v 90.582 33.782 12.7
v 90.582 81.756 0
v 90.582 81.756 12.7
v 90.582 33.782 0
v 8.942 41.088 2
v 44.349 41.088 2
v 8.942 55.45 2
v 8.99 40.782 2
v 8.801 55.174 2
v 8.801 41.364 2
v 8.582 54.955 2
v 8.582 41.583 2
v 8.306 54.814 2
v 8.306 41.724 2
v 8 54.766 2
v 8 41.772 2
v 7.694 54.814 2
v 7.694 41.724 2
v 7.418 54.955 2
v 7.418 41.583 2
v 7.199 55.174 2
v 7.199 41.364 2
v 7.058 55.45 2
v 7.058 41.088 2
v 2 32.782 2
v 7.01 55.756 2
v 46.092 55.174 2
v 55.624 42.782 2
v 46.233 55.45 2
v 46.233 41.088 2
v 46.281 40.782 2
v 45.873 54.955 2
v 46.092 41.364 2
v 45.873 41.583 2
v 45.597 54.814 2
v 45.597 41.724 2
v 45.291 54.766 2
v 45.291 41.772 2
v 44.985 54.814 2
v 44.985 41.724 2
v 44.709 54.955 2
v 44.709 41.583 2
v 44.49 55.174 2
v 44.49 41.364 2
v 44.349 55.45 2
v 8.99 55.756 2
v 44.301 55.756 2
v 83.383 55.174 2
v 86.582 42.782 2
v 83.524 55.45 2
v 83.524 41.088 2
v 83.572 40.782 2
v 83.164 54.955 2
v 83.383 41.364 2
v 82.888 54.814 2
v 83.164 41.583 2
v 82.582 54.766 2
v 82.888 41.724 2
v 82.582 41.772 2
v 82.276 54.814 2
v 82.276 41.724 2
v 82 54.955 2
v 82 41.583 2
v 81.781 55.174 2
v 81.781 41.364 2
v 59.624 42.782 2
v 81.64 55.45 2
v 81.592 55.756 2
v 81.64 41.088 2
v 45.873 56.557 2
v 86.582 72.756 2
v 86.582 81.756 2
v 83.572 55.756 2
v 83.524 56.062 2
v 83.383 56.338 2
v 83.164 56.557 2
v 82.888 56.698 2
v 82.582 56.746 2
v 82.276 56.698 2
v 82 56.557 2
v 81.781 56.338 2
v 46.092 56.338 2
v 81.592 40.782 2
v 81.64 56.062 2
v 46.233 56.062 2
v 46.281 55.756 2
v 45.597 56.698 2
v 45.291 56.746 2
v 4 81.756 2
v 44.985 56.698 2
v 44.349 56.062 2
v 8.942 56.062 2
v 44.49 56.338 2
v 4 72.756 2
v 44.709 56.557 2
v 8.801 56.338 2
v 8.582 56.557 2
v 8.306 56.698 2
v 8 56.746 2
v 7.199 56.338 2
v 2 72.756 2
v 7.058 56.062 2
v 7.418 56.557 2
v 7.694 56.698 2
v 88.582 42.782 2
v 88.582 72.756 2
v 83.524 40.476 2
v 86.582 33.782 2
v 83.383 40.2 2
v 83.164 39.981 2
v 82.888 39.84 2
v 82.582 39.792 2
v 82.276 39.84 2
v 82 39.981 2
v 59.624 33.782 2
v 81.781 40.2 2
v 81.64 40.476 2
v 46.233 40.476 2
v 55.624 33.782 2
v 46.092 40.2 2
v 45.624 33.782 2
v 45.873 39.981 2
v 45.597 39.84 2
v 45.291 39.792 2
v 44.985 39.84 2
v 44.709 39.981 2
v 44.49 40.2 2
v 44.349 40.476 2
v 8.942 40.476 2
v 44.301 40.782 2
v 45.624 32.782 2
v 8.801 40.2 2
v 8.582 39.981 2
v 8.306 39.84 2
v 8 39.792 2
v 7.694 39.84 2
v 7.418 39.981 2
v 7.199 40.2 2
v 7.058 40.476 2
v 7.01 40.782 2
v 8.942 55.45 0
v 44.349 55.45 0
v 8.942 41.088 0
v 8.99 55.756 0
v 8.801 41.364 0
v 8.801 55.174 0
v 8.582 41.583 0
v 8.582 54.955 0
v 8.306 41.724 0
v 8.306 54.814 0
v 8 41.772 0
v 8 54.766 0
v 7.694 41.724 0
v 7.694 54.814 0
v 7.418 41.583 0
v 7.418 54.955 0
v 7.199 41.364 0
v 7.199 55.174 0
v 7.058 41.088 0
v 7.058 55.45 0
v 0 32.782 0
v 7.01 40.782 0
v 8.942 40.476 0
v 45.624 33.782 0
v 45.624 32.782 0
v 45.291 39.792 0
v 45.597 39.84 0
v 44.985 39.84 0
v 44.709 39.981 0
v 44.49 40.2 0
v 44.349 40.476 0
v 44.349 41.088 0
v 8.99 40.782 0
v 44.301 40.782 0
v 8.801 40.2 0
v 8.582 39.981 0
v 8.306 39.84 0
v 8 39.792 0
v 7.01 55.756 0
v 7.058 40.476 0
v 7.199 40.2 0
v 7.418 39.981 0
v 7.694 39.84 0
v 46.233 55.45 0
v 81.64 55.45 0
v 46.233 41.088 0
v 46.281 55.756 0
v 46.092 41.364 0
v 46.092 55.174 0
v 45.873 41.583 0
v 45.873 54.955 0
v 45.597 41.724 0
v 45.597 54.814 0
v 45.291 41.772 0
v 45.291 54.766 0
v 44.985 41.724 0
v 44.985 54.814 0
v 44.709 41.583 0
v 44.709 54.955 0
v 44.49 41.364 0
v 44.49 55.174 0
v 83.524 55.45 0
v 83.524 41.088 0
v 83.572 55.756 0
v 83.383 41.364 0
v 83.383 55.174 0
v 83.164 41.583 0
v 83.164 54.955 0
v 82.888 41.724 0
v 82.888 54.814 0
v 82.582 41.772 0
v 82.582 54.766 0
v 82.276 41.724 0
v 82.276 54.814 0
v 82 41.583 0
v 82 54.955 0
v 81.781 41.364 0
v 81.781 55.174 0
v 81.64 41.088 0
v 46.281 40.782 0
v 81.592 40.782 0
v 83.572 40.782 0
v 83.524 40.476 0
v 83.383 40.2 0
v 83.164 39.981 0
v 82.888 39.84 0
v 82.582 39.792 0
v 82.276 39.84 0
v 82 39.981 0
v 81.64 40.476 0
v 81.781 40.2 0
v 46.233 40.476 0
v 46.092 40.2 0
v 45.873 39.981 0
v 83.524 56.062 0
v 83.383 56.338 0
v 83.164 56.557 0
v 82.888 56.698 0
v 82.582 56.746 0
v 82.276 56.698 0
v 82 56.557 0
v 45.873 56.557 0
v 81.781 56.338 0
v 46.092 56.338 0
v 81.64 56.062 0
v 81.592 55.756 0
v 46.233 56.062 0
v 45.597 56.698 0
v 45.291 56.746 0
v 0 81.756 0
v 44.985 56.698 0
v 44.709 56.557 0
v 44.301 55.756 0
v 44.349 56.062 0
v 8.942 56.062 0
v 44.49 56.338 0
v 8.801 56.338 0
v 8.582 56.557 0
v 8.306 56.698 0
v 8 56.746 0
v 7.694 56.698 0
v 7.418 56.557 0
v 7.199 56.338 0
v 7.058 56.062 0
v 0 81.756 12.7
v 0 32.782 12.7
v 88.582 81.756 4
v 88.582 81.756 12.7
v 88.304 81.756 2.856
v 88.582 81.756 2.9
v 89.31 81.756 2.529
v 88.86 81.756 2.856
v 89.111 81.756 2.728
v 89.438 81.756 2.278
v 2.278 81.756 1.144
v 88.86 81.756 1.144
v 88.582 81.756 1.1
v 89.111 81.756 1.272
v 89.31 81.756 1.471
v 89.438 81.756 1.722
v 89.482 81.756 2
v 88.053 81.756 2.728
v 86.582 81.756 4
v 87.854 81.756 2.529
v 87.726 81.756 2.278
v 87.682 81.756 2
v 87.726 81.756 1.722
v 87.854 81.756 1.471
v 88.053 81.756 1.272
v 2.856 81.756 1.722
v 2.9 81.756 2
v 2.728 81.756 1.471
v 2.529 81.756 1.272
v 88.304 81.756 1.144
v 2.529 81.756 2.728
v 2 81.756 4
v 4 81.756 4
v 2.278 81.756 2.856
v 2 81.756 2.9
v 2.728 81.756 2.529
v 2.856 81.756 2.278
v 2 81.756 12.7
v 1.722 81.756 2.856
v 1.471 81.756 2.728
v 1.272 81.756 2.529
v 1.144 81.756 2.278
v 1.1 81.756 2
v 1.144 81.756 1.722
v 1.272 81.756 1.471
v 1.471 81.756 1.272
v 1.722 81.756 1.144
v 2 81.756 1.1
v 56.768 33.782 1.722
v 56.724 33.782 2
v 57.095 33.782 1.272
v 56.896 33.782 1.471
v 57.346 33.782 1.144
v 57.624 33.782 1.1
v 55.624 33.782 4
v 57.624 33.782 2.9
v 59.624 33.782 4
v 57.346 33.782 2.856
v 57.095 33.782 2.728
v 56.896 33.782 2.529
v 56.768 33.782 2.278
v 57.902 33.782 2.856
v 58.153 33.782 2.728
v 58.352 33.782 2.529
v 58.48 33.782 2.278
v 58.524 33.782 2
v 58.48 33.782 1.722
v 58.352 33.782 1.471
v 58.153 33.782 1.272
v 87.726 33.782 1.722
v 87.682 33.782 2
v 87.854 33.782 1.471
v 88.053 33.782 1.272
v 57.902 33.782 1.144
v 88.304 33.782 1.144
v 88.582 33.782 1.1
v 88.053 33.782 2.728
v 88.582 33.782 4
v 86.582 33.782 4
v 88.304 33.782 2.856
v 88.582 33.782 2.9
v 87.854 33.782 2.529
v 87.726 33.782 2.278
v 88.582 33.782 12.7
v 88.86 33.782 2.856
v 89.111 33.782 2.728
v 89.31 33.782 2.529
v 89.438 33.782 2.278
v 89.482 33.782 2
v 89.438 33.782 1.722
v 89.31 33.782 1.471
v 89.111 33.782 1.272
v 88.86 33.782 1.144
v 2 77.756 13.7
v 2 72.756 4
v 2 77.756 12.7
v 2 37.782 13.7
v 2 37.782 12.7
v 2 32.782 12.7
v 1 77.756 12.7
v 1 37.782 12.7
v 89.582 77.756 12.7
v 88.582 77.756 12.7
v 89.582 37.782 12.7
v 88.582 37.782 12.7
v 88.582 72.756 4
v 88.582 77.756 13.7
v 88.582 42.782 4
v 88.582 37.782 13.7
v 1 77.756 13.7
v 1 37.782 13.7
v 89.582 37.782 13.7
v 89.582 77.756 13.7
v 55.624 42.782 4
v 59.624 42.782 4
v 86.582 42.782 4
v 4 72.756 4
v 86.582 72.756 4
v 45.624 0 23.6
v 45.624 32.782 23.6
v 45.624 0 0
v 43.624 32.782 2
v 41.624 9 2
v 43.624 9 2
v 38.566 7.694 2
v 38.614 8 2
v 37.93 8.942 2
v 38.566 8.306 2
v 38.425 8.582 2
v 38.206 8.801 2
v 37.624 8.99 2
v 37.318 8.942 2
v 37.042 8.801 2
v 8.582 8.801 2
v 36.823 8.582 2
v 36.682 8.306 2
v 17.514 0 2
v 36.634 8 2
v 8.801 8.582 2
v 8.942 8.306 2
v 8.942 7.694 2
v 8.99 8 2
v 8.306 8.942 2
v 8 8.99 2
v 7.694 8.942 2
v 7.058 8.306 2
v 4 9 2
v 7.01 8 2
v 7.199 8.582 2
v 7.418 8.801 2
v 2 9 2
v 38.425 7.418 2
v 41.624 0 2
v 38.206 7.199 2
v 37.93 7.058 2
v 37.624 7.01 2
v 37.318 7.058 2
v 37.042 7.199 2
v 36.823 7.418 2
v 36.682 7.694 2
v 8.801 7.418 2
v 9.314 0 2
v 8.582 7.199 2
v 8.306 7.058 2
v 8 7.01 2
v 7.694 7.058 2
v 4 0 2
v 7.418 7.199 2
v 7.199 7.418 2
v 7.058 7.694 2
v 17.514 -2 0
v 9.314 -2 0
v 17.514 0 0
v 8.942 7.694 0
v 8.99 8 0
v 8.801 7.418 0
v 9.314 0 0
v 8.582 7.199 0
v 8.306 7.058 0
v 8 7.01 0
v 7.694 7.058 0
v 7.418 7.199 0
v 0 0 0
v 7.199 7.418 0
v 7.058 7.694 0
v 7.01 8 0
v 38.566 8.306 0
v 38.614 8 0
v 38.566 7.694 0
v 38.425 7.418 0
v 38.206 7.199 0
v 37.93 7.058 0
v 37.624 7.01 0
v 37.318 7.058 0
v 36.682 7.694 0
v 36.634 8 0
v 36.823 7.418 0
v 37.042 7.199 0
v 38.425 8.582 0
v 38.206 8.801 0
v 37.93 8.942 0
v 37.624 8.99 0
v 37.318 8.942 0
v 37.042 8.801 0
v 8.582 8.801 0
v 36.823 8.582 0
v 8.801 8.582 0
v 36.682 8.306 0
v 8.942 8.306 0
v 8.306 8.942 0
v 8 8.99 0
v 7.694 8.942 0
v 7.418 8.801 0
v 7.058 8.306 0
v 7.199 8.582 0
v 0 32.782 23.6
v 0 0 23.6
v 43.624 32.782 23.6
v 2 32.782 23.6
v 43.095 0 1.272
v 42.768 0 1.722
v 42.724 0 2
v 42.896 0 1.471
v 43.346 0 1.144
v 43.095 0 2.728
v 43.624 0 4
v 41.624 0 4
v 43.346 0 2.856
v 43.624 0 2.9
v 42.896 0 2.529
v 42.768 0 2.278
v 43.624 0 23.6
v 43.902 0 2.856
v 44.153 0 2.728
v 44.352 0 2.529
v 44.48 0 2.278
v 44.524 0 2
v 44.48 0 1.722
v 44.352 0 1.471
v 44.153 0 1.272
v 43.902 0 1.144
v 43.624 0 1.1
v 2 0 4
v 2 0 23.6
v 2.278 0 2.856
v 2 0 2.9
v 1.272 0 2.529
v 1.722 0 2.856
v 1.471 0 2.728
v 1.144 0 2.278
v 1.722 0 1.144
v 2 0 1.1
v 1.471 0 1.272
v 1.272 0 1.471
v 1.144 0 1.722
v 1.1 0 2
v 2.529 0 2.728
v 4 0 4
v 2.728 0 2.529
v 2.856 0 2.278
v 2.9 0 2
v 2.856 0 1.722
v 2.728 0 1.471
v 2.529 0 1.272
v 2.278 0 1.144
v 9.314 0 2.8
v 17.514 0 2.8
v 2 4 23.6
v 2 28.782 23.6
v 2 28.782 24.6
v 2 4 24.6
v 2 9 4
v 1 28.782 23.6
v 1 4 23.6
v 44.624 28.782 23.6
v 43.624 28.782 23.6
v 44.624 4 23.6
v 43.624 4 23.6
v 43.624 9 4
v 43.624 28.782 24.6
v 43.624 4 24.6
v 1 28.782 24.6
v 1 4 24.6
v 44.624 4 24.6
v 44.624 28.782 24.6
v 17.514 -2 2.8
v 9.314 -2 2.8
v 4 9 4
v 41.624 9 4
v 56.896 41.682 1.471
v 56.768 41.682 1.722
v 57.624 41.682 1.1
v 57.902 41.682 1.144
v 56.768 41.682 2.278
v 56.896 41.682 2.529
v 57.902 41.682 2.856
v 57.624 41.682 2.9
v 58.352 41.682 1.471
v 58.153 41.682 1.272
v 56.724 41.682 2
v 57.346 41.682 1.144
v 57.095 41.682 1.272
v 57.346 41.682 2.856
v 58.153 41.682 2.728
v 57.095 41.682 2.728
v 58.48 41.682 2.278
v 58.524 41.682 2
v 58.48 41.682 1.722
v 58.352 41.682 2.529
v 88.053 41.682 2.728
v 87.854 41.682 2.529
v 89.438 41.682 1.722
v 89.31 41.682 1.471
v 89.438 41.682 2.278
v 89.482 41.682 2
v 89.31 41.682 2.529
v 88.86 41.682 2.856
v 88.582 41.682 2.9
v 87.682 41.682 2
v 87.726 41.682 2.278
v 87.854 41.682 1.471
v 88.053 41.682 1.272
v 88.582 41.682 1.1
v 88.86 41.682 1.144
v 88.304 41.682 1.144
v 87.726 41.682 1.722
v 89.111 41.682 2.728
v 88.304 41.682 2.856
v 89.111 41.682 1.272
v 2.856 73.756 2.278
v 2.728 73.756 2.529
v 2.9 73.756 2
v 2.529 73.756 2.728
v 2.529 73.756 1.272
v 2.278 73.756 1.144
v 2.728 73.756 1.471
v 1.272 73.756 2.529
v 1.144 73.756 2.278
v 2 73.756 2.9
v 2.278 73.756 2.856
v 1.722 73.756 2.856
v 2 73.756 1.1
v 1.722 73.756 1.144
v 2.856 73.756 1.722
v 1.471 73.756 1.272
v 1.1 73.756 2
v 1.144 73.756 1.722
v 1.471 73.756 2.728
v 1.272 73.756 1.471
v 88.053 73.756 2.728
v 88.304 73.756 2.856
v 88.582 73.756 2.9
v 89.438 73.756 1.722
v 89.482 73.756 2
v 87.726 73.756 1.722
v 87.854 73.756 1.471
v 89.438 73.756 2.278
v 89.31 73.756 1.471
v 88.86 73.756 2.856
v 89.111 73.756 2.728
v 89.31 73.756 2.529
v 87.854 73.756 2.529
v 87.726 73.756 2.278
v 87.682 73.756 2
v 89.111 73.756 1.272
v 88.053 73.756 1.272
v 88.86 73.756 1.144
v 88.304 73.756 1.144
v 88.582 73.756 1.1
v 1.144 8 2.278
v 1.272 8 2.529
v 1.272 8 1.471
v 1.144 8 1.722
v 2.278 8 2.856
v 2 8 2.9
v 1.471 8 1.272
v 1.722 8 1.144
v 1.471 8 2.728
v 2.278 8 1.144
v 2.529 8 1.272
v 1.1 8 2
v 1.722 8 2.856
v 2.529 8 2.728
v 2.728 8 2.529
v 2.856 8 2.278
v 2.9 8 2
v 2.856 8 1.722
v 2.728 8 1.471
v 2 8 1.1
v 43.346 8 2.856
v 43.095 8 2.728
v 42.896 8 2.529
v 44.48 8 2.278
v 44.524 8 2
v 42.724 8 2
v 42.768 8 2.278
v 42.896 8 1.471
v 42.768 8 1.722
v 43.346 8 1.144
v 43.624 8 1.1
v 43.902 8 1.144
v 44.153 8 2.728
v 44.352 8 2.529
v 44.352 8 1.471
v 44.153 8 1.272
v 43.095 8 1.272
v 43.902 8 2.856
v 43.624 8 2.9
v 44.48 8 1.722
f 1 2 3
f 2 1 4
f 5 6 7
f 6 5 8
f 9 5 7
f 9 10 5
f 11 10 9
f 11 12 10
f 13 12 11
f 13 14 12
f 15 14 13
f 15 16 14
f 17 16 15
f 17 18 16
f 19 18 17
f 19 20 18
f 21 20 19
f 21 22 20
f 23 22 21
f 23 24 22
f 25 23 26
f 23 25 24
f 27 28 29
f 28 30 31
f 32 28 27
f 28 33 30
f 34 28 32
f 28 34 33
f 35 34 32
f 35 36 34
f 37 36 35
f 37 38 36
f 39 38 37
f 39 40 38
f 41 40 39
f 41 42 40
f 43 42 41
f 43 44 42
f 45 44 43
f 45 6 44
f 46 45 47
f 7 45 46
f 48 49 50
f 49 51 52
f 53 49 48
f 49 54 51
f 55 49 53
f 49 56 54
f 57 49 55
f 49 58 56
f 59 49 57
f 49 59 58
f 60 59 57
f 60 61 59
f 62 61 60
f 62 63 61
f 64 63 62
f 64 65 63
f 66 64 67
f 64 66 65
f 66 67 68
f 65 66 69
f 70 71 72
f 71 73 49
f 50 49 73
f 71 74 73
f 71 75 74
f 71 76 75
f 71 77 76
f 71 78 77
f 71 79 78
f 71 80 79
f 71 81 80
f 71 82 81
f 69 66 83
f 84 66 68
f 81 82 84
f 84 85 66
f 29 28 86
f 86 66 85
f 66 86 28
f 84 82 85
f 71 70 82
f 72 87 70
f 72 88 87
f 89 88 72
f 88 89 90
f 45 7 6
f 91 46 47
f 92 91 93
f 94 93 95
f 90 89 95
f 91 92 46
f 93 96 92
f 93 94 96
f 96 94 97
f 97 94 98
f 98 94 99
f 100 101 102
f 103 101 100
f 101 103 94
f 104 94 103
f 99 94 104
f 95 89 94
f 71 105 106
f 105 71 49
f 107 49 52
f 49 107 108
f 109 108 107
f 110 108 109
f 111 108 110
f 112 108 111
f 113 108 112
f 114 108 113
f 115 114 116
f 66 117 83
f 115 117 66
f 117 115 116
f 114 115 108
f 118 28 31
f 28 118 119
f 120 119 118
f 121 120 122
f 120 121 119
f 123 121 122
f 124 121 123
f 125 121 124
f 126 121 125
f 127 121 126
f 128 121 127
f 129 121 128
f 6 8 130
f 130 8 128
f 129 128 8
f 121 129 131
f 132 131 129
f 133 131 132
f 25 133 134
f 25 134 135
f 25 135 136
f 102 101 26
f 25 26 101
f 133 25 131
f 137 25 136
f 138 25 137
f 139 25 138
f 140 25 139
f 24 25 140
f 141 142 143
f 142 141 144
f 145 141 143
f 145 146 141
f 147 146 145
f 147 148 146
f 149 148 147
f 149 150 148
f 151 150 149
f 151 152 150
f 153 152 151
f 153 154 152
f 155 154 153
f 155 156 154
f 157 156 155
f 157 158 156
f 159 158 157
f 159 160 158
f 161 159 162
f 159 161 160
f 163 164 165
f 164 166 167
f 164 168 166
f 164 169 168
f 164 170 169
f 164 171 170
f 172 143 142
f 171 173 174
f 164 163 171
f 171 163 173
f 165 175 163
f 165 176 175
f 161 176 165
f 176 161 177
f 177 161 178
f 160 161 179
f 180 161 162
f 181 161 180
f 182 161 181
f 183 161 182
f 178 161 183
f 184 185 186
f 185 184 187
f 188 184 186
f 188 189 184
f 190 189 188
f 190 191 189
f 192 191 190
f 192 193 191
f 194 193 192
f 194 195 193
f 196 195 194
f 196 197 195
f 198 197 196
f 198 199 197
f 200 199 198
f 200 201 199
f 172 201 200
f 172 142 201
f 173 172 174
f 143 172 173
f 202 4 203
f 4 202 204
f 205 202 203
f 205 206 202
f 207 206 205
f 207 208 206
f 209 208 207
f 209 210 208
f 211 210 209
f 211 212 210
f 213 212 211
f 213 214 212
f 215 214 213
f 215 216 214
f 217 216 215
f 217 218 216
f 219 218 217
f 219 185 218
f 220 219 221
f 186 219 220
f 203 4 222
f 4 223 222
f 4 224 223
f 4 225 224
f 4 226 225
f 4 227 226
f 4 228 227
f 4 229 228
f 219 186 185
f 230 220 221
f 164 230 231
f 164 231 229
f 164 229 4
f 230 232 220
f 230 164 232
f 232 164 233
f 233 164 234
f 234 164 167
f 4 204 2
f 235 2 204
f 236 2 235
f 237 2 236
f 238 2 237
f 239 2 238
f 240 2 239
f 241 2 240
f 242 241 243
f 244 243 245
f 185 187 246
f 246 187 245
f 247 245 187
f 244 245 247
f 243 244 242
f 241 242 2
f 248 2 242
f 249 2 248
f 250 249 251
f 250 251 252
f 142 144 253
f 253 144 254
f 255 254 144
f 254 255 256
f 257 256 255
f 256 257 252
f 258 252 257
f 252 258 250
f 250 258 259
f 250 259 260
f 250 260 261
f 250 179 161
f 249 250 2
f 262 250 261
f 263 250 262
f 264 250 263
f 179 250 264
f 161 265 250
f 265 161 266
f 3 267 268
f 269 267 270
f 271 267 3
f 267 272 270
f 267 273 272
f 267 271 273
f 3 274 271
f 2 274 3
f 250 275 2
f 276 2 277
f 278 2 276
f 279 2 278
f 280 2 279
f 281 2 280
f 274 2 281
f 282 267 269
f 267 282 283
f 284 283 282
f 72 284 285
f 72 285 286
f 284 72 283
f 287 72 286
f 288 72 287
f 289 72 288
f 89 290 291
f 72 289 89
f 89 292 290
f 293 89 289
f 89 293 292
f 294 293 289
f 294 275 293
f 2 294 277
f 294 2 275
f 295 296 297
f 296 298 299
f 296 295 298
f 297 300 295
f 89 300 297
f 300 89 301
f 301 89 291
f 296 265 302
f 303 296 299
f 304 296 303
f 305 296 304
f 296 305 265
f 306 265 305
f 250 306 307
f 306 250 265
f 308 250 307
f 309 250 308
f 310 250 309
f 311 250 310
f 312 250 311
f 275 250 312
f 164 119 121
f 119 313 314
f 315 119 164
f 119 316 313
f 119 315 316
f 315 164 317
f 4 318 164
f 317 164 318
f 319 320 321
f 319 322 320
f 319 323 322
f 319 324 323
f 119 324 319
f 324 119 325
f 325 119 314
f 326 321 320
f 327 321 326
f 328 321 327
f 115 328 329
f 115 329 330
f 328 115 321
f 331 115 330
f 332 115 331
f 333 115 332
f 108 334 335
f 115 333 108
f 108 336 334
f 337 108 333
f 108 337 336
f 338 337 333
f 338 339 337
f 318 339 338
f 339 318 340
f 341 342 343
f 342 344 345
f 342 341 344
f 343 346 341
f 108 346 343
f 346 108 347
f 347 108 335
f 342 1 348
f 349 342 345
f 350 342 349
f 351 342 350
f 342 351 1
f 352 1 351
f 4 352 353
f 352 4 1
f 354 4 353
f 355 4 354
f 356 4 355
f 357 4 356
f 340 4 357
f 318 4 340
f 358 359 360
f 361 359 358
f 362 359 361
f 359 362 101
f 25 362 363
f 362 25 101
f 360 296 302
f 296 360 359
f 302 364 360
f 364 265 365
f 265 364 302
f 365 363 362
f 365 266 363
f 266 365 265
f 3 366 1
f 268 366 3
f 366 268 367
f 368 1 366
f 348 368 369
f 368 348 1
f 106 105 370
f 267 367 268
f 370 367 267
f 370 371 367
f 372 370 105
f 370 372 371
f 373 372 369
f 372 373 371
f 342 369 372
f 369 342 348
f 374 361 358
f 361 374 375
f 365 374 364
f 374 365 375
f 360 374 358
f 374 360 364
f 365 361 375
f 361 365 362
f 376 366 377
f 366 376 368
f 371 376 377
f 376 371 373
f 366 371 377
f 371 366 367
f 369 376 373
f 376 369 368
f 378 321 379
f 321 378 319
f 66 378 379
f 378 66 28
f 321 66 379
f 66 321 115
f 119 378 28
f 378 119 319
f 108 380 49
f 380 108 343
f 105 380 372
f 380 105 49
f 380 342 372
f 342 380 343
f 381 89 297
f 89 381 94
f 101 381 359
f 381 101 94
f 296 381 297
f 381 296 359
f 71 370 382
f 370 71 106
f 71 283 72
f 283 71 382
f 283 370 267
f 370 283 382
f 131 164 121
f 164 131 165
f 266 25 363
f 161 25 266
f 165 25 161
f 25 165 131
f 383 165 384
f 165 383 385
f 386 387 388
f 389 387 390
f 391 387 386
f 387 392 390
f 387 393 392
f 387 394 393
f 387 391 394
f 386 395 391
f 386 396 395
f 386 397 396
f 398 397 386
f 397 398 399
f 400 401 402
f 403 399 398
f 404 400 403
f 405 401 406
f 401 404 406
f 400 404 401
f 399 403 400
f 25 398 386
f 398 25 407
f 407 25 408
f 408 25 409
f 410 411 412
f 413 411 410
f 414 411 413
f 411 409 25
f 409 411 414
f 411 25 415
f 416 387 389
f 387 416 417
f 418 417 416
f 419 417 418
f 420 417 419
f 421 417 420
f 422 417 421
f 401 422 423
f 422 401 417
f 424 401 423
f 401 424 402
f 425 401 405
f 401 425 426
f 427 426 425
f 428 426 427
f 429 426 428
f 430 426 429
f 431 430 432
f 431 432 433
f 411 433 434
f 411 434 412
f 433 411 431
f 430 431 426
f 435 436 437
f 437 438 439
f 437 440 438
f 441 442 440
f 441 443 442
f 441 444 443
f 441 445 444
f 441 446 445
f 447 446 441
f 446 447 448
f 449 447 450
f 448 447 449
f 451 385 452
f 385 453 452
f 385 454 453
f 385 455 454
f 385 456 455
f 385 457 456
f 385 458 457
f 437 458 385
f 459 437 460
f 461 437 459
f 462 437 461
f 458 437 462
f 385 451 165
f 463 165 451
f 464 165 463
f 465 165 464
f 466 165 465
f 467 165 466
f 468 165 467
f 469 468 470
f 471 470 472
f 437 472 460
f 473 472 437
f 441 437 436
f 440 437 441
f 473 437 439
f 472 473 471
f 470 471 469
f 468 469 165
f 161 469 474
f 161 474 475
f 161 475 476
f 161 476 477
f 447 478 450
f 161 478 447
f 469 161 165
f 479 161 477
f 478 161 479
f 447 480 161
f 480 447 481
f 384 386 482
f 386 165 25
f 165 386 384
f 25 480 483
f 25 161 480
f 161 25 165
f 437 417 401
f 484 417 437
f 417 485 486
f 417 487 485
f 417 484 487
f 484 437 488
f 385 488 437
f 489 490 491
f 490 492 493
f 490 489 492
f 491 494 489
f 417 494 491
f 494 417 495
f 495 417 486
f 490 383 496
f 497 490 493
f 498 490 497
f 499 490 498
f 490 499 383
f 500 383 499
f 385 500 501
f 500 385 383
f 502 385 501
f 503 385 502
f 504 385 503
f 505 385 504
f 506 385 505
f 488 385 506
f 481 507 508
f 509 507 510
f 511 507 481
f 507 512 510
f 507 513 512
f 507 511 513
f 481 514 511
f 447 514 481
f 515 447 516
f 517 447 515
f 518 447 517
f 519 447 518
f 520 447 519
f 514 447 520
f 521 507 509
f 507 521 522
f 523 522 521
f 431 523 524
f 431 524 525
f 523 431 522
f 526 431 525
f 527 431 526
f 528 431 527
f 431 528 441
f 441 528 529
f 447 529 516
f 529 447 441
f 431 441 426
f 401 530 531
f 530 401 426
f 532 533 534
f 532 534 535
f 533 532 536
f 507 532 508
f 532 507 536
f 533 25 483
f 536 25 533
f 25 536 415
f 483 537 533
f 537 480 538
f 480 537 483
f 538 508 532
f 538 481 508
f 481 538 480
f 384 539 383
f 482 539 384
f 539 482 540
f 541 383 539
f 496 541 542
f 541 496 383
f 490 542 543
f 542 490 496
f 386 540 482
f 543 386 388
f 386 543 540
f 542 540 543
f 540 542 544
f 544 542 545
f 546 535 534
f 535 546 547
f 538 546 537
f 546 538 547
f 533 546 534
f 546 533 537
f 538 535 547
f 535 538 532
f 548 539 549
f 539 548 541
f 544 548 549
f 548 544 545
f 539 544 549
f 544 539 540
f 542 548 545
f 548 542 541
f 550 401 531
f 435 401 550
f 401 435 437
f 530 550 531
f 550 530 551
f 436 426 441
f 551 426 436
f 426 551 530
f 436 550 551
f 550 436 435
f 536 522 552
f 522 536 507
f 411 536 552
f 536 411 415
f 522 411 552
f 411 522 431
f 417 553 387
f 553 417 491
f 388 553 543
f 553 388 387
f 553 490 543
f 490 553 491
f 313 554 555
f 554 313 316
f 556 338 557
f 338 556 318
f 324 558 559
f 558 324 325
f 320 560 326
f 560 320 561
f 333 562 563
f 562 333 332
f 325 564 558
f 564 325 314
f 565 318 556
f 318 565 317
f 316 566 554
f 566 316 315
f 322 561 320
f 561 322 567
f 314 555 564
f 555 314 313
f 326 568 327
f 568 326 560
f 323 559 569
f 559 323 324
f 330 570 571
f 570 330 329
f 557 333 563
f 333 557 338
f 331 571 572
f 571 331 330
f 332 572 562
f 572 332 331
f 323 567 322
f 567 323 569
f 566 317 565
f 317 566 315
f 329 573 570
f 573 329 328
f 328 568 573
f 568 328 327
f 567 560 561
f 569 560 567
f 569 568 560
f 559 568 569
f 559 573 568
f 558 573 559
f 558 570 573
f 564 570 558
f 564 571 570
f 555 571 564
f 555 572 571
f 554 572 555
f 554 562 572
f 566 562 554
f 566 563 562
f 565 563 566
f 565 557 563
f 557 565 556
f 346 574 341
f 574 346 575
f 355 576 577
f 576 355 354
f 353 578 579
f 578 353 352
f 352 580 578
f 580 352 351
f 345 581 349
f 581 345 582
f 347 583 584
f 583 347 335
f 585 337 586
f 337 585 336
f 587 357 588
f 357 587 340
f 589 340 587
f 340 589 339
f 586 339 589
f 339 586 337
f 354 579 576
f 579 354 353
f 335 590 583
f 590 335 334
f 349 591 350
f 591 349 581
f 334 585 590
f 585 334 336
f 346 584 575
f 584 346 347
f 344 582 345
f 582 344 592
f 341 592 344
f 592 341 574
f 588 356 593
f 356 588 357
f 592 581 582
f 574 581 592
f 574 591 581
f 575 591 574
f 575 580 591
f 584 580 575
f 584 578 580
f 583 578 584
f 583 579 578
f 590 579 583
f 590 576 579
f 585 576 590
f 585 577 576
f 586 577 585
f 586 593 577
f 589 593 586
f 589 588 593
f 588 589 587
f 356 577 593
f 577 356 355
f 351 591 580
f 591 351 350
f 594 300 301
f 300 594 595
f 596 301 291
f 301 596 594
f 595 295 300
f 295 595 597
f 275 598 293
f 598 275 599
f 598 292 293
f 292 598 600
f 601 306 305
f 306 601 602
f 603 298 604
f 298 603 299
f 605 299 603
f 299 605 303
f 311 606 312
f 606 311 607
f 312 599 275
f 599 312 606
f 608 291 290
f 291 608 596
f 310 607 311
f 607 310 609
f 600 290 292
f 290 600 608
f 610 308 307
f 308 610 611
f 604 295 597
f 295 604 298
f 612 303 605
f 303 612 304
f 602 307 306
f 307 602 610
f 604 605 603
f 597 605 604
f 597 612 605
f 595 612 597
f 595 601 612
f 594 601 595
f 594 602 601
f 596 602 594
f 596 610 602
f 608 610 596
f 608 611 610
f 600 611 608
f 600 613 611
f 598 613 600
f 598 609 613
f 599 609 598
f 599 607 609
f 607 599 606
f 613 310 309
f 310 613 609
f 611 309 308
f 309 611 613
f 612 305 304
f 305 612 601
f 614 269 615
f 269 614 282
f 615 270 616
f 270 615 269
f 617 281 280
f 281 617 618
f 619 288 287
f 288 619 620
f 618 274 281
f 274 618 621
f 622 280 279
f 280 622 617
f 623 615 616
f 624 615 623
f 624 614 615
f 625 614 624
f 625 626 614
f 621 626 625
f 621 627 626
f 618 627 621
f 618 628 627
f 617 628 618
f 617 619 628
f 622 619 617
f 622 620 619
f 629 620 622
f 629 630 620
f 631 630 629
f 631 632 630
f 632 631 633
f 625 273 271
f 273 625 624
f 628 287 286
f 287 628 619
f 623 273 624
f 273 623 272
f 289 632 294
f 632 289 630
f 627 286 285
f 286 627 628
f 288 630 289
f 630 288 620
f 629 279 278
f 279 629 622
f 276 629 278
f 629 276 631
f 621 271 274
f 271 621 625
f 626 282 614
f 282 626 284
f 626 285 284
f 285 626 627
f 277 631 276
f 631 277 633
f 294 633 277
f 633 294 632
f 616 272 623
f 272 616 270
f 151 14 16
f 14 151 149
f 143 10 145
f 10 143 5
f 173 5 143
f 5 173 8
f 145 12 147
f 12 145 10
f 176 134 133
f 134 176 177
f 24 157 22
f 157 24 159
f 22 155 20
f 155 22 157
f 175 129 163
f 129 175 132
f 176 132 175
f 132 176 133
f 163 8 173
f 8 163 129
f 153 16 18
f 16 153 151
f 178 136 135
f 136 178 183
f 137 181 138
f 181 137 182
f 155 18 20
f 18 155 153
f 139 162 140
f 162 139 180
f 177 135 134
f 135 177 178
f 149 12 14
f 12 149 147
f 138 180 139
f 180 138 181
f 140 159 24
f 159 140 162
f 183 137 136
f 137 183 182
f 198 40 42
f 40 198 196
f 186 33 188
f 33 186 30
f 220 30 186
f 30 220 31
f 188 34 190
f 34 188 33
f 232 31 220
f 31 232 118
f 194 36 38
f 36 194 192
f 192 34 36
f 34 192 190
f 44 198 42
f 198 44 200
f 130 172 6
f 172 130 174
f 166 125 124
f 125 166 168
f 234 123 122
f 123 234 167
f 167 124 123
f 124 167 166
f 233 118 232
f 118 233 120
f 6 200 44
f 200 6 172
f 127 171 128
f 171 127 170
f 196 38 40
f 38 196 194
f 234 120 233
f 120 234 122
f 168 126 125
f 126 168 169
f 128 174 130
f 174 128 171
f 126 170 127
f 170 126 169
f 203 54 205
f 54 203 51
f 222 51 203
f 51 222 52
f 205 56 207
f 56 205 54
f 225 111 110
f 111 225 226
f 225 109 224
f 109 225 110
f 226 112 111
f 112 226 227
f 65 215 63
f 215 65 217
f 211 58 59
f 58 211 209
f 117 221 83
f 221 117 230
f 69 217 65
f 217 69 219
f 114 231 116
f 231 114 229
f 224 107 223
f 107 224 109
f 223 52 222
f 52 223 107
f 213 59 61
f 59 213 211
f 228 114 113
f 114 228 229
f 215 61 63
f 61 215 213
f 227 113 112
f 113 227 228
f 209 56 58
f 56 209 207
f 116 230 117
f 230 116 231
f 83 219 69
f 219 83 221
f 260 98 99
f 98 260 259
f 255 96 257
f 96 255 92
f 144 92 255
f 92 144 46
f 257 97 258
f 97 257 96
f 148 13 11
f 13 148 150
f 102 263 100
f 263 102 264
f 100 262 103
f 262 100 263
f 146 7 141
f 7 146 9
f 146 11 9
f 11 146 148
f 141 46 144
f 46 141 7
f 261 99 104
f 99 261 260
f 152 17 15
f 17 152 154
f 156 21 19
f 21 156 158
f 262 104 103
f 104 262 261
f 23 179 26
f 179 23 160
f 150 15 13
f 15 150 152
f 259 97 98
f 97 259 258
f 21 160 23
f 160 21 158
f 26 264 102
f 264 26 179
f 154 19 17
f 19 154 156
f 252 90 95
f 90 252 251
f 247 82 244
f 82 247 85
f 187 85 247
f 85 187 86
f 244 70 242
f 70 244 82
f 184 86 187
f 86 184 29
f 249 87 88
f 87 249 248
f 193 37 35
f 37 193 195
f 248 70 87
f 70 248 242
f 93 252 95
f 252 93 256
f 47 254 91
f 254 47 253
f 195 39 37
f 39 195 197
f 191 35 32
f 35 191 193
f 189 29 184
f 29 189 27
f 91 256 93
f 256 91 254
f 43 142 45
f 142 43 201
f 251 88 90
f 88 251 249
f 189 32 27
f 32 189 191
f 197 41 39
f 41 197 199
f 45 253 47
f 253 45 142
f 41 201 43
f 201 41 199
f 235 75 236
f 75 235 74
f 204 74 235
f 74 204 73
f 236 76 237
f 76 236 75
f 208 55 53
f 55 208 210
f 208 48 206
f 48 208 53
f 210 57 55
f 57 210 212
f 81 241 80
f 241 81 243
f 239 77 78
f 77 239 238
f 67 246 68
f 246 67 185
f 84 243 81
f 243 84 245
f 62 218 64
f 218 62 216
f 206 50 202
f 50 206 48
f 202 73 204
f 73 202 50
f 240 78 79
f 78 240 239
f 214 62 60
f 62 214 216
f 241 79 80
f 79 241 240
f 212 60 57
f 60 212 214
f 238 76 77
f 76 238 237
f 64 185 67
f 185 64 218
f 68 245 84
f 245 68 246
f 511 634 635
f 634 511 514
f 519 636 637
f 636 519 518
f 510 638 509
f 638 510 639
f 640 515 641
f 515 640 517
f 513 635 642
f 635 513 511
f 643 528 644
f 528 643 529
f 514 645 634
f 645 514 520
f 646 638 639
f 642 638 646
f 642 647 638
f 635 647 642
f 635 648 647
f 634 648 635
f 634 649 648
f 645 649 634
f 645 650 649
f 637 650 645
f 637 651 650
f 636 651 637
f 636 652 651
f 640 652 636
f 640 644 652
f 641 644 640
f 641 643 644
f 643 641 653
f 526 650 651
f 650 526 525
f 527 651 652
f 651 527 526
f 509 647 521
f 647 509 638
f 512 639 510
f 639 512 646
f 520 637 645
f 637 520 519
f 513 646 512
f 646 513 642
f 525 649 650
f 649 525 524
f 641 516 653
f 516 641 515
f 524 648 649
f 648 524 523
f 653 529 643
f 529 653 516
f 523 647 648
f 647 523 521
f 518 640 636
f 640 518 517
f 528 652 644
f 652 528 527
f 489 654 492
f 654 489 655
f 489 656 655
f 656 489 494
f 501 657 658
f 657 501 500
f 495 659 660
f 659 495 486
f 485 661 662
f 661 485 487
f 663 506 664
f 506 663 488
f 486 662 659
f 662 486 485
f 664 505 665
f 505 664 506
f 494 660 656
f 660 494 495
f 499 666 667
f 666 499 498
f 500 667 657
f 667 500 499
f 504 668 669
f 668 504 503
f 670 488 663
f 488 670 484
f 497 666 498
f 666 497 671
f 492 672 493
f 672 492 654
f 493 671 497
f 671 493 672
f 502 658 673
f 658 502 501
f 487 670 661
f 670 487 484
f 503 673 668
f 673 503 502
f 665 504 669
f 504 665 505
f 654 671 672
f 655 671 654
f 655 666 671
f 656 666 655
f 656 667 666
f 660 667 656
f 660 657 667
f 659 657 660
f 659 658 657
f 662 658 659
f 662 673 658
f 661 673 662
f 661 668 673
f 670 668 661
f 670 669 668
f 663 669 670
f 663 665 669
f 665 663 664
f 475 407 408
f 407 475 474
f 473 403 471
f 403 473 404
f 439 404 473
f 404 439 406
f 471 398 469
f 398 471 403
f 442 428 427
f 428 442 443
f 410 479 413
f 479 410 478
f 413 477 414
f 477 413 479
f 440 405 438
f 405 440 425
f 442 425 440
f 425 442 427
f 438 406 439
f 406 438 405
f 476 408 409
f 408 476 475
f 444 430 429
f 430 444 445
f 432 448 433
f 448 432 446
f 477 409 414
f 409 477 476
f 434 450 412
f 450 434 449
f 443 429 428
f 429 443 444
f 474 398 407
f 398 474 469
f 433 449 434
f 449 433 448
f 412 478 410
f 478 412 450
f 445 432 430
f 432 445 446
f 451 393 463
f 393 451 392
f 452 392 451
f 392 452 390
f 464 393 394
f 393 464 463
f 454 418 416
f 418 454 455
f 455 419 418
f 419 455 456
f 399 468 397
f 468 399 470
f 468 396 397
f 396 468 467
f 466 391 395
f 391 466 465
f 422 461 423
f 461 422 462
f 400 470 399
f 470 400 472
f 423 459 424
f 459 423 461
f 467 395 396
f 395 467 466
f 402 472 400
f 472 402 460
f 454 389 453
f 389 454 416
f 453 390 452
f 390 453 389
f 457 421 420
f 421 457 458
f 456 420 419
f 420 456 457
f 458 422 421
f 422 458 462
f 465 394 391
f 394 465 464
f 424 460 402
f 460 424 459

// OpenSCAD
// file: ../lib/ssd1306.scad
// SPDX-FileCopyrightText: 2022-2024 Rafael G. Martins <rafael@rafaelmartins.eng.br>
// SPDX-License-Identifier: CERN-OHL-S-2.0

ssd1306_pcb_thickness = 1.6;
ssd1306_pcb_base_height = 2;
ssd1306_pcb_base_d = 4;
ssd1306_pcb_base_screw_d = 1.8;
ssd1306_pcb_base_spacing_x = 23.5;
ssd1306_pcb_base_spacing_y = 23.8;
ssd1306_screen_width = 24.5;
ssd1306_screen_height = 13;
ssd1306_screen_distance_x = (ssd1306_pcb_base_spacing_x - ssd1306_screen_width) / 2;
ssd1306_screen_distance_y = 3.5;
ssd1306_pin_distance_y = 0.45;


module ssd1306_add(thickness) {
    translate([-ssd1306_pcb_base_d / 2, -ssd1306_pcb_base_d / 2, 0])
        cube([ssd1306_pcb_base_spacing_x + ssd1306_pcb_base_d,
              ssd1306_pcb_base_spacing_y + ssd1306_pcb_base_d,
              thickness]);

    for(i=[0:1])
        for(j=[0:1])
            translate([i * ssd1306_pcb_base_spacing_x, j * ssd1306_pcb_base_spacing_y, thickness])
                cylinder(ssd1306_pcb_base_height, d=ssd1306_pcb_base_d, $fn=20);
}


module ssd1306_sub(thickness) {
    translate([ssd1306_screen_distance_x, ssd1306_screen_distance_y, 0])
        cube([ssd1306_screen_width, ssd1306_screen_height, thickness]);

    for(i=[0:1])
        for(j=[0:1])
            translate([i * ssd1306_pcb_base_spacing_x, j * ssd1306_pcb_base_spacing_y, thickness])
                cylinder(ssd1306_pcb_base_height, d=ssd1306_pcb_base_screw_d, $fn=20);
}
// file: settings.scad
// SPDX-FileCopyrightText: 2022-2024 Rafael G. Martins <rafael@rafaelmartins.eng.br>
// SPDX-License-Identifier: CERN-OHL-S-2.0

include <../lib/ssd1306.scad>

screw_d = 2;
screw_h = 8;
thickness = 2;
gap = 0;

front_screw_padding = 3.5;

pcb_base_d = 5;
pcb_base_screw_d = 1.8;
pcb_screw_padding = 2.54;
pcb_thickness = 1.6;

pcb_gap = 1;
pcb_padding_x = thickness + pcb_gap;
pcb_padding_y = thickness + pcb_gap;

display_pcb_length = 39.624;
display_pcb_width = 33.782;

display_pcb0_x = pcb_padding_x;
display_pcb0_y = pcb_padding_y;

display_length = display_pcb_length + 2 * pcb_padding_x;
display_width = display_pcb_width + pcb_padding_y;

switches_pcb_length = 84.582;
switches_pcb_width = 45.974;

switches_length = switches_pcb_length + 2 * pcb_padding_x;
switches_width = switches_pcb_width + 2 * pcb_padding_y;

switches_pcb_base_distance_x = 39.751;
switches_pcb_base_distance_y = 20.447;

oled_socket_height = 8.5;
oled_pin0_y = 5.334;
oled0_x = (display_length - ssd1306_pcb_base_spacing_x) / 2;
oled0_y = display_pcb0_y + oled_pin0_y + ssd1306_pin_distance_y;

display_pcb_base_distance = 34.544;
display_pcb_base_height = 2.8 + oled_socket_height + ssd1306_pcb_thickness + ssd1306_pcb_base_height;

switches_pcb_base_height = 6 - thickness;

usb_height = 4.4;
usb_width = 8.2;
usb_distance_x = pcb_padding_x + 29.210 - usb_width / 2;
usb_distance_z = thickness + display_pcb_base_height + pcb_thickness - 0.1;

display_height = usb_distance_z + usb_height + 0.8 + thickness;
display_height_in = display_pcb_base_height - switches_pcb_base_height - thickness;

switches_height = display_height - display_pcb_base_height + switches_pcb_base_height;

led0_x = 37.211;
led0_y = 15.24;
led_d = 3.2;

key_dim = 16;
key_distance = 19.304;
key0_x = 13.335 - key_dim / 2;
key0_y = key0_x;

base_screw_d = 1.8;
base_screw_h = 5;
base_screw_padding = 8;
base_screw_padding_bottom = 25;

base_length = switches_length;
base_width = display_width + switches_width - pcb_gap - thickness;
base_height = 16;

back_screw3_padding = 10;
// file: ../lib/screw-base.scad
// SPDX-FileCopyrightText: 2022-2024 Rafael G. Martins <rafael@rafaelmartins.eng.br>
// SPDX-License-Identifier: CERN-OHL-S-2.0

function screw_base_dim(screw_d) = screw_d + 2;
function screw_base_height(screw_h) = screw_h + 1;


module screw_base_add(screw_d, screw_h) {
    cube([screw_base_dim(screw_d), screw_base_dim(screw_d), screw_base_height(screw_h)]);
}


module screw_base_sub(screw_d, screw_h) {
    translate([screw_base_dim(screw_d) / 2, screw_base_dim(screw_d) / 2, 0])
        cylinder(screw_h, d=screw_d - 0.2, $fn=20);
}
// main file
// SPDX-FileCopyrightText: 2022-2024 Rafael G. Martins <rafael@rafaelmartins.eng.br>
// SPDX-License-Identifier: CERN-OHL-S-2.0

include <../lib/screw-base.scad>
include <settings.scad>

display_width_ = display_width - 2 * (thickness + gap);
display_height_ = display_height - thickness - gap;

switches_width_ = switches_width - 2 * (thickness + gap);
switches_height_ = switches_height - thickness - gap;


difference() {
    union() {
        cube([display_length, display_width_, thickness]);
        cube([thickness, display_width_, display_height_]);
        translate([display_length - thickness, 0, 0])
            cube([thickness, display_width_, display_height_]);

        translate([thickness / 2, 4, display_height_])
            cube([thickness / 2, display_width_ - 8, thickness / 2]);
        translate([display_length - thickness, 4, display_height_])
            cube([thickness / 2, display_width_ - 8, thickness / 2]);

        translate([display_length - usb_distance_x - usb_width + gap, -thickness - gap, 0])
            cube([usb_width - 2 * gap, thickness + gap, display_height - usb_distance_z - usb_height]);

        rotate([-90, -90, 0])
            screw_base_add(screw_d, screw_h);
        translate([display_length, 0, 0])
            rotate([-90, 180, 0])
                screw_base_add(screw_d, screw_h);

        translate([0, display_width_, 0]) {
            cube([display_length, 2 * gap + pcb_gap, thickness]);
            cube([thickness, 2 * gap + pcb_gap, switches_height_]);

            translate([0, 2 * gap + pcb_gap, 0]) {
                cube([switches_length, switches_width_, thickness]);
                cube([thickness, switches_width_, switches_height_]);
                translate([switches_length - thickness, 0, 0])
                    cube([thickness, switches_width_, switches_height_]);

                translate([thickness / 2, 4, switches_height_])
                    cube([thickness / 2, switches_width_ - 8, thickness / 2]);
                translate([switches_length - thickness, 4, switches_height_])
                    cube([thickness / 2, switches_width_ - 8, thickness / 2]);

                translate([display_length + back_screw3_padding, 0, 0])
                    rotate([-90, -90, 0])
                        screw_base_add(screw_d, screw_h);
                translate([switches_length, 0, 0])
                    rotate([-90, 180, 0])
                        screw_base_add(screw_d, screw_h);

                translate([0, switches_width_, 0])
                    rotate([90, 0, 0])
                        screw_base_add(screw_d, screw_h);
                translate([switches_length, switches_width_, 0])
                    rotate([90, -90, 0])
                        screw_base_add(screw_d, screw_h);
            }
        }
    }

    rotate([-90, -90, 0])
        screw_base_sub(screw_d, screw_h);
    translate([display_length, 0, 0])
        rotate([-90, 180, 0])
            screw_base_sub(screw_d, screw_h);

    translate([0, display_width_ + 2 * gap + pcb_gap, 0]) {
        translate([display_length + back_screw3_padding, -0.1, 0]) // workaround
            rotate([-90, -90, 0])
                screw_base_sub(screw_d, screw_h);
        translate([switches_length, -0.1, 0]) // workaround
            rotate([-90, 180, 0])
                screw_base_sub(screw_d, screw_h);
        translate([0, switches_width_, 0])
            rotate([90, 0, 0])
                screw_base_sub(screw_d, screw_h);
        translate([switches_length, switches_width_, 0])
            rotate([90, -90, 0])
                screw_base_sub(screw_d, screw_h);
    }

    translate([base_screw_padding, base_screw_padding, 0])
        cylinder(h=base_screw_h, d=base_screw_d * 1.1, $fn=20);
    translate([display_length - base_screw_padding, base_screw_padding, 0])
        cylinder(h=base_screw_h, d=base_screw_d * 1.1, $fn=20);

    translate([0, display_width_, 0]) {
        translate([base_screw_padding, base_screw_padding, 0])
            cylinder(h=base_screw_h, d=base_screw_d * 1.1, $fn=20);
        translate([switches_length / 2, base_screw_padding, 0])
            cylinder(h=base_screw_h, d=base_screw_d * 1.1, $fn=20);
        translate([switches_length - base_screw_padding, base_screw_padding, 0])
            cylinder(h=base_screw_h, d=base_screw_d * 1.1, $fn=20);
        translate([base_screw_padding, switches_width_ - base_screw_padding_bottom, 0])
            cylinder(h=base_screw_h, d=base_screw_d * 1.1, $fn=20);
        translate([switches_length / 2, switches_width_ - base_screw_padding_bottom, 0])
            cylinder(h=base_screw_h, d=base_screw_d * 1.1, $fn=20);
        translate([switches_length - base_screw_padding, switches_width_ - base_screw_padding_bottom, 0])
            cylinder(h=base_screw_h, d=base_screw_d * 1.1, $fn=20);
    }
}
